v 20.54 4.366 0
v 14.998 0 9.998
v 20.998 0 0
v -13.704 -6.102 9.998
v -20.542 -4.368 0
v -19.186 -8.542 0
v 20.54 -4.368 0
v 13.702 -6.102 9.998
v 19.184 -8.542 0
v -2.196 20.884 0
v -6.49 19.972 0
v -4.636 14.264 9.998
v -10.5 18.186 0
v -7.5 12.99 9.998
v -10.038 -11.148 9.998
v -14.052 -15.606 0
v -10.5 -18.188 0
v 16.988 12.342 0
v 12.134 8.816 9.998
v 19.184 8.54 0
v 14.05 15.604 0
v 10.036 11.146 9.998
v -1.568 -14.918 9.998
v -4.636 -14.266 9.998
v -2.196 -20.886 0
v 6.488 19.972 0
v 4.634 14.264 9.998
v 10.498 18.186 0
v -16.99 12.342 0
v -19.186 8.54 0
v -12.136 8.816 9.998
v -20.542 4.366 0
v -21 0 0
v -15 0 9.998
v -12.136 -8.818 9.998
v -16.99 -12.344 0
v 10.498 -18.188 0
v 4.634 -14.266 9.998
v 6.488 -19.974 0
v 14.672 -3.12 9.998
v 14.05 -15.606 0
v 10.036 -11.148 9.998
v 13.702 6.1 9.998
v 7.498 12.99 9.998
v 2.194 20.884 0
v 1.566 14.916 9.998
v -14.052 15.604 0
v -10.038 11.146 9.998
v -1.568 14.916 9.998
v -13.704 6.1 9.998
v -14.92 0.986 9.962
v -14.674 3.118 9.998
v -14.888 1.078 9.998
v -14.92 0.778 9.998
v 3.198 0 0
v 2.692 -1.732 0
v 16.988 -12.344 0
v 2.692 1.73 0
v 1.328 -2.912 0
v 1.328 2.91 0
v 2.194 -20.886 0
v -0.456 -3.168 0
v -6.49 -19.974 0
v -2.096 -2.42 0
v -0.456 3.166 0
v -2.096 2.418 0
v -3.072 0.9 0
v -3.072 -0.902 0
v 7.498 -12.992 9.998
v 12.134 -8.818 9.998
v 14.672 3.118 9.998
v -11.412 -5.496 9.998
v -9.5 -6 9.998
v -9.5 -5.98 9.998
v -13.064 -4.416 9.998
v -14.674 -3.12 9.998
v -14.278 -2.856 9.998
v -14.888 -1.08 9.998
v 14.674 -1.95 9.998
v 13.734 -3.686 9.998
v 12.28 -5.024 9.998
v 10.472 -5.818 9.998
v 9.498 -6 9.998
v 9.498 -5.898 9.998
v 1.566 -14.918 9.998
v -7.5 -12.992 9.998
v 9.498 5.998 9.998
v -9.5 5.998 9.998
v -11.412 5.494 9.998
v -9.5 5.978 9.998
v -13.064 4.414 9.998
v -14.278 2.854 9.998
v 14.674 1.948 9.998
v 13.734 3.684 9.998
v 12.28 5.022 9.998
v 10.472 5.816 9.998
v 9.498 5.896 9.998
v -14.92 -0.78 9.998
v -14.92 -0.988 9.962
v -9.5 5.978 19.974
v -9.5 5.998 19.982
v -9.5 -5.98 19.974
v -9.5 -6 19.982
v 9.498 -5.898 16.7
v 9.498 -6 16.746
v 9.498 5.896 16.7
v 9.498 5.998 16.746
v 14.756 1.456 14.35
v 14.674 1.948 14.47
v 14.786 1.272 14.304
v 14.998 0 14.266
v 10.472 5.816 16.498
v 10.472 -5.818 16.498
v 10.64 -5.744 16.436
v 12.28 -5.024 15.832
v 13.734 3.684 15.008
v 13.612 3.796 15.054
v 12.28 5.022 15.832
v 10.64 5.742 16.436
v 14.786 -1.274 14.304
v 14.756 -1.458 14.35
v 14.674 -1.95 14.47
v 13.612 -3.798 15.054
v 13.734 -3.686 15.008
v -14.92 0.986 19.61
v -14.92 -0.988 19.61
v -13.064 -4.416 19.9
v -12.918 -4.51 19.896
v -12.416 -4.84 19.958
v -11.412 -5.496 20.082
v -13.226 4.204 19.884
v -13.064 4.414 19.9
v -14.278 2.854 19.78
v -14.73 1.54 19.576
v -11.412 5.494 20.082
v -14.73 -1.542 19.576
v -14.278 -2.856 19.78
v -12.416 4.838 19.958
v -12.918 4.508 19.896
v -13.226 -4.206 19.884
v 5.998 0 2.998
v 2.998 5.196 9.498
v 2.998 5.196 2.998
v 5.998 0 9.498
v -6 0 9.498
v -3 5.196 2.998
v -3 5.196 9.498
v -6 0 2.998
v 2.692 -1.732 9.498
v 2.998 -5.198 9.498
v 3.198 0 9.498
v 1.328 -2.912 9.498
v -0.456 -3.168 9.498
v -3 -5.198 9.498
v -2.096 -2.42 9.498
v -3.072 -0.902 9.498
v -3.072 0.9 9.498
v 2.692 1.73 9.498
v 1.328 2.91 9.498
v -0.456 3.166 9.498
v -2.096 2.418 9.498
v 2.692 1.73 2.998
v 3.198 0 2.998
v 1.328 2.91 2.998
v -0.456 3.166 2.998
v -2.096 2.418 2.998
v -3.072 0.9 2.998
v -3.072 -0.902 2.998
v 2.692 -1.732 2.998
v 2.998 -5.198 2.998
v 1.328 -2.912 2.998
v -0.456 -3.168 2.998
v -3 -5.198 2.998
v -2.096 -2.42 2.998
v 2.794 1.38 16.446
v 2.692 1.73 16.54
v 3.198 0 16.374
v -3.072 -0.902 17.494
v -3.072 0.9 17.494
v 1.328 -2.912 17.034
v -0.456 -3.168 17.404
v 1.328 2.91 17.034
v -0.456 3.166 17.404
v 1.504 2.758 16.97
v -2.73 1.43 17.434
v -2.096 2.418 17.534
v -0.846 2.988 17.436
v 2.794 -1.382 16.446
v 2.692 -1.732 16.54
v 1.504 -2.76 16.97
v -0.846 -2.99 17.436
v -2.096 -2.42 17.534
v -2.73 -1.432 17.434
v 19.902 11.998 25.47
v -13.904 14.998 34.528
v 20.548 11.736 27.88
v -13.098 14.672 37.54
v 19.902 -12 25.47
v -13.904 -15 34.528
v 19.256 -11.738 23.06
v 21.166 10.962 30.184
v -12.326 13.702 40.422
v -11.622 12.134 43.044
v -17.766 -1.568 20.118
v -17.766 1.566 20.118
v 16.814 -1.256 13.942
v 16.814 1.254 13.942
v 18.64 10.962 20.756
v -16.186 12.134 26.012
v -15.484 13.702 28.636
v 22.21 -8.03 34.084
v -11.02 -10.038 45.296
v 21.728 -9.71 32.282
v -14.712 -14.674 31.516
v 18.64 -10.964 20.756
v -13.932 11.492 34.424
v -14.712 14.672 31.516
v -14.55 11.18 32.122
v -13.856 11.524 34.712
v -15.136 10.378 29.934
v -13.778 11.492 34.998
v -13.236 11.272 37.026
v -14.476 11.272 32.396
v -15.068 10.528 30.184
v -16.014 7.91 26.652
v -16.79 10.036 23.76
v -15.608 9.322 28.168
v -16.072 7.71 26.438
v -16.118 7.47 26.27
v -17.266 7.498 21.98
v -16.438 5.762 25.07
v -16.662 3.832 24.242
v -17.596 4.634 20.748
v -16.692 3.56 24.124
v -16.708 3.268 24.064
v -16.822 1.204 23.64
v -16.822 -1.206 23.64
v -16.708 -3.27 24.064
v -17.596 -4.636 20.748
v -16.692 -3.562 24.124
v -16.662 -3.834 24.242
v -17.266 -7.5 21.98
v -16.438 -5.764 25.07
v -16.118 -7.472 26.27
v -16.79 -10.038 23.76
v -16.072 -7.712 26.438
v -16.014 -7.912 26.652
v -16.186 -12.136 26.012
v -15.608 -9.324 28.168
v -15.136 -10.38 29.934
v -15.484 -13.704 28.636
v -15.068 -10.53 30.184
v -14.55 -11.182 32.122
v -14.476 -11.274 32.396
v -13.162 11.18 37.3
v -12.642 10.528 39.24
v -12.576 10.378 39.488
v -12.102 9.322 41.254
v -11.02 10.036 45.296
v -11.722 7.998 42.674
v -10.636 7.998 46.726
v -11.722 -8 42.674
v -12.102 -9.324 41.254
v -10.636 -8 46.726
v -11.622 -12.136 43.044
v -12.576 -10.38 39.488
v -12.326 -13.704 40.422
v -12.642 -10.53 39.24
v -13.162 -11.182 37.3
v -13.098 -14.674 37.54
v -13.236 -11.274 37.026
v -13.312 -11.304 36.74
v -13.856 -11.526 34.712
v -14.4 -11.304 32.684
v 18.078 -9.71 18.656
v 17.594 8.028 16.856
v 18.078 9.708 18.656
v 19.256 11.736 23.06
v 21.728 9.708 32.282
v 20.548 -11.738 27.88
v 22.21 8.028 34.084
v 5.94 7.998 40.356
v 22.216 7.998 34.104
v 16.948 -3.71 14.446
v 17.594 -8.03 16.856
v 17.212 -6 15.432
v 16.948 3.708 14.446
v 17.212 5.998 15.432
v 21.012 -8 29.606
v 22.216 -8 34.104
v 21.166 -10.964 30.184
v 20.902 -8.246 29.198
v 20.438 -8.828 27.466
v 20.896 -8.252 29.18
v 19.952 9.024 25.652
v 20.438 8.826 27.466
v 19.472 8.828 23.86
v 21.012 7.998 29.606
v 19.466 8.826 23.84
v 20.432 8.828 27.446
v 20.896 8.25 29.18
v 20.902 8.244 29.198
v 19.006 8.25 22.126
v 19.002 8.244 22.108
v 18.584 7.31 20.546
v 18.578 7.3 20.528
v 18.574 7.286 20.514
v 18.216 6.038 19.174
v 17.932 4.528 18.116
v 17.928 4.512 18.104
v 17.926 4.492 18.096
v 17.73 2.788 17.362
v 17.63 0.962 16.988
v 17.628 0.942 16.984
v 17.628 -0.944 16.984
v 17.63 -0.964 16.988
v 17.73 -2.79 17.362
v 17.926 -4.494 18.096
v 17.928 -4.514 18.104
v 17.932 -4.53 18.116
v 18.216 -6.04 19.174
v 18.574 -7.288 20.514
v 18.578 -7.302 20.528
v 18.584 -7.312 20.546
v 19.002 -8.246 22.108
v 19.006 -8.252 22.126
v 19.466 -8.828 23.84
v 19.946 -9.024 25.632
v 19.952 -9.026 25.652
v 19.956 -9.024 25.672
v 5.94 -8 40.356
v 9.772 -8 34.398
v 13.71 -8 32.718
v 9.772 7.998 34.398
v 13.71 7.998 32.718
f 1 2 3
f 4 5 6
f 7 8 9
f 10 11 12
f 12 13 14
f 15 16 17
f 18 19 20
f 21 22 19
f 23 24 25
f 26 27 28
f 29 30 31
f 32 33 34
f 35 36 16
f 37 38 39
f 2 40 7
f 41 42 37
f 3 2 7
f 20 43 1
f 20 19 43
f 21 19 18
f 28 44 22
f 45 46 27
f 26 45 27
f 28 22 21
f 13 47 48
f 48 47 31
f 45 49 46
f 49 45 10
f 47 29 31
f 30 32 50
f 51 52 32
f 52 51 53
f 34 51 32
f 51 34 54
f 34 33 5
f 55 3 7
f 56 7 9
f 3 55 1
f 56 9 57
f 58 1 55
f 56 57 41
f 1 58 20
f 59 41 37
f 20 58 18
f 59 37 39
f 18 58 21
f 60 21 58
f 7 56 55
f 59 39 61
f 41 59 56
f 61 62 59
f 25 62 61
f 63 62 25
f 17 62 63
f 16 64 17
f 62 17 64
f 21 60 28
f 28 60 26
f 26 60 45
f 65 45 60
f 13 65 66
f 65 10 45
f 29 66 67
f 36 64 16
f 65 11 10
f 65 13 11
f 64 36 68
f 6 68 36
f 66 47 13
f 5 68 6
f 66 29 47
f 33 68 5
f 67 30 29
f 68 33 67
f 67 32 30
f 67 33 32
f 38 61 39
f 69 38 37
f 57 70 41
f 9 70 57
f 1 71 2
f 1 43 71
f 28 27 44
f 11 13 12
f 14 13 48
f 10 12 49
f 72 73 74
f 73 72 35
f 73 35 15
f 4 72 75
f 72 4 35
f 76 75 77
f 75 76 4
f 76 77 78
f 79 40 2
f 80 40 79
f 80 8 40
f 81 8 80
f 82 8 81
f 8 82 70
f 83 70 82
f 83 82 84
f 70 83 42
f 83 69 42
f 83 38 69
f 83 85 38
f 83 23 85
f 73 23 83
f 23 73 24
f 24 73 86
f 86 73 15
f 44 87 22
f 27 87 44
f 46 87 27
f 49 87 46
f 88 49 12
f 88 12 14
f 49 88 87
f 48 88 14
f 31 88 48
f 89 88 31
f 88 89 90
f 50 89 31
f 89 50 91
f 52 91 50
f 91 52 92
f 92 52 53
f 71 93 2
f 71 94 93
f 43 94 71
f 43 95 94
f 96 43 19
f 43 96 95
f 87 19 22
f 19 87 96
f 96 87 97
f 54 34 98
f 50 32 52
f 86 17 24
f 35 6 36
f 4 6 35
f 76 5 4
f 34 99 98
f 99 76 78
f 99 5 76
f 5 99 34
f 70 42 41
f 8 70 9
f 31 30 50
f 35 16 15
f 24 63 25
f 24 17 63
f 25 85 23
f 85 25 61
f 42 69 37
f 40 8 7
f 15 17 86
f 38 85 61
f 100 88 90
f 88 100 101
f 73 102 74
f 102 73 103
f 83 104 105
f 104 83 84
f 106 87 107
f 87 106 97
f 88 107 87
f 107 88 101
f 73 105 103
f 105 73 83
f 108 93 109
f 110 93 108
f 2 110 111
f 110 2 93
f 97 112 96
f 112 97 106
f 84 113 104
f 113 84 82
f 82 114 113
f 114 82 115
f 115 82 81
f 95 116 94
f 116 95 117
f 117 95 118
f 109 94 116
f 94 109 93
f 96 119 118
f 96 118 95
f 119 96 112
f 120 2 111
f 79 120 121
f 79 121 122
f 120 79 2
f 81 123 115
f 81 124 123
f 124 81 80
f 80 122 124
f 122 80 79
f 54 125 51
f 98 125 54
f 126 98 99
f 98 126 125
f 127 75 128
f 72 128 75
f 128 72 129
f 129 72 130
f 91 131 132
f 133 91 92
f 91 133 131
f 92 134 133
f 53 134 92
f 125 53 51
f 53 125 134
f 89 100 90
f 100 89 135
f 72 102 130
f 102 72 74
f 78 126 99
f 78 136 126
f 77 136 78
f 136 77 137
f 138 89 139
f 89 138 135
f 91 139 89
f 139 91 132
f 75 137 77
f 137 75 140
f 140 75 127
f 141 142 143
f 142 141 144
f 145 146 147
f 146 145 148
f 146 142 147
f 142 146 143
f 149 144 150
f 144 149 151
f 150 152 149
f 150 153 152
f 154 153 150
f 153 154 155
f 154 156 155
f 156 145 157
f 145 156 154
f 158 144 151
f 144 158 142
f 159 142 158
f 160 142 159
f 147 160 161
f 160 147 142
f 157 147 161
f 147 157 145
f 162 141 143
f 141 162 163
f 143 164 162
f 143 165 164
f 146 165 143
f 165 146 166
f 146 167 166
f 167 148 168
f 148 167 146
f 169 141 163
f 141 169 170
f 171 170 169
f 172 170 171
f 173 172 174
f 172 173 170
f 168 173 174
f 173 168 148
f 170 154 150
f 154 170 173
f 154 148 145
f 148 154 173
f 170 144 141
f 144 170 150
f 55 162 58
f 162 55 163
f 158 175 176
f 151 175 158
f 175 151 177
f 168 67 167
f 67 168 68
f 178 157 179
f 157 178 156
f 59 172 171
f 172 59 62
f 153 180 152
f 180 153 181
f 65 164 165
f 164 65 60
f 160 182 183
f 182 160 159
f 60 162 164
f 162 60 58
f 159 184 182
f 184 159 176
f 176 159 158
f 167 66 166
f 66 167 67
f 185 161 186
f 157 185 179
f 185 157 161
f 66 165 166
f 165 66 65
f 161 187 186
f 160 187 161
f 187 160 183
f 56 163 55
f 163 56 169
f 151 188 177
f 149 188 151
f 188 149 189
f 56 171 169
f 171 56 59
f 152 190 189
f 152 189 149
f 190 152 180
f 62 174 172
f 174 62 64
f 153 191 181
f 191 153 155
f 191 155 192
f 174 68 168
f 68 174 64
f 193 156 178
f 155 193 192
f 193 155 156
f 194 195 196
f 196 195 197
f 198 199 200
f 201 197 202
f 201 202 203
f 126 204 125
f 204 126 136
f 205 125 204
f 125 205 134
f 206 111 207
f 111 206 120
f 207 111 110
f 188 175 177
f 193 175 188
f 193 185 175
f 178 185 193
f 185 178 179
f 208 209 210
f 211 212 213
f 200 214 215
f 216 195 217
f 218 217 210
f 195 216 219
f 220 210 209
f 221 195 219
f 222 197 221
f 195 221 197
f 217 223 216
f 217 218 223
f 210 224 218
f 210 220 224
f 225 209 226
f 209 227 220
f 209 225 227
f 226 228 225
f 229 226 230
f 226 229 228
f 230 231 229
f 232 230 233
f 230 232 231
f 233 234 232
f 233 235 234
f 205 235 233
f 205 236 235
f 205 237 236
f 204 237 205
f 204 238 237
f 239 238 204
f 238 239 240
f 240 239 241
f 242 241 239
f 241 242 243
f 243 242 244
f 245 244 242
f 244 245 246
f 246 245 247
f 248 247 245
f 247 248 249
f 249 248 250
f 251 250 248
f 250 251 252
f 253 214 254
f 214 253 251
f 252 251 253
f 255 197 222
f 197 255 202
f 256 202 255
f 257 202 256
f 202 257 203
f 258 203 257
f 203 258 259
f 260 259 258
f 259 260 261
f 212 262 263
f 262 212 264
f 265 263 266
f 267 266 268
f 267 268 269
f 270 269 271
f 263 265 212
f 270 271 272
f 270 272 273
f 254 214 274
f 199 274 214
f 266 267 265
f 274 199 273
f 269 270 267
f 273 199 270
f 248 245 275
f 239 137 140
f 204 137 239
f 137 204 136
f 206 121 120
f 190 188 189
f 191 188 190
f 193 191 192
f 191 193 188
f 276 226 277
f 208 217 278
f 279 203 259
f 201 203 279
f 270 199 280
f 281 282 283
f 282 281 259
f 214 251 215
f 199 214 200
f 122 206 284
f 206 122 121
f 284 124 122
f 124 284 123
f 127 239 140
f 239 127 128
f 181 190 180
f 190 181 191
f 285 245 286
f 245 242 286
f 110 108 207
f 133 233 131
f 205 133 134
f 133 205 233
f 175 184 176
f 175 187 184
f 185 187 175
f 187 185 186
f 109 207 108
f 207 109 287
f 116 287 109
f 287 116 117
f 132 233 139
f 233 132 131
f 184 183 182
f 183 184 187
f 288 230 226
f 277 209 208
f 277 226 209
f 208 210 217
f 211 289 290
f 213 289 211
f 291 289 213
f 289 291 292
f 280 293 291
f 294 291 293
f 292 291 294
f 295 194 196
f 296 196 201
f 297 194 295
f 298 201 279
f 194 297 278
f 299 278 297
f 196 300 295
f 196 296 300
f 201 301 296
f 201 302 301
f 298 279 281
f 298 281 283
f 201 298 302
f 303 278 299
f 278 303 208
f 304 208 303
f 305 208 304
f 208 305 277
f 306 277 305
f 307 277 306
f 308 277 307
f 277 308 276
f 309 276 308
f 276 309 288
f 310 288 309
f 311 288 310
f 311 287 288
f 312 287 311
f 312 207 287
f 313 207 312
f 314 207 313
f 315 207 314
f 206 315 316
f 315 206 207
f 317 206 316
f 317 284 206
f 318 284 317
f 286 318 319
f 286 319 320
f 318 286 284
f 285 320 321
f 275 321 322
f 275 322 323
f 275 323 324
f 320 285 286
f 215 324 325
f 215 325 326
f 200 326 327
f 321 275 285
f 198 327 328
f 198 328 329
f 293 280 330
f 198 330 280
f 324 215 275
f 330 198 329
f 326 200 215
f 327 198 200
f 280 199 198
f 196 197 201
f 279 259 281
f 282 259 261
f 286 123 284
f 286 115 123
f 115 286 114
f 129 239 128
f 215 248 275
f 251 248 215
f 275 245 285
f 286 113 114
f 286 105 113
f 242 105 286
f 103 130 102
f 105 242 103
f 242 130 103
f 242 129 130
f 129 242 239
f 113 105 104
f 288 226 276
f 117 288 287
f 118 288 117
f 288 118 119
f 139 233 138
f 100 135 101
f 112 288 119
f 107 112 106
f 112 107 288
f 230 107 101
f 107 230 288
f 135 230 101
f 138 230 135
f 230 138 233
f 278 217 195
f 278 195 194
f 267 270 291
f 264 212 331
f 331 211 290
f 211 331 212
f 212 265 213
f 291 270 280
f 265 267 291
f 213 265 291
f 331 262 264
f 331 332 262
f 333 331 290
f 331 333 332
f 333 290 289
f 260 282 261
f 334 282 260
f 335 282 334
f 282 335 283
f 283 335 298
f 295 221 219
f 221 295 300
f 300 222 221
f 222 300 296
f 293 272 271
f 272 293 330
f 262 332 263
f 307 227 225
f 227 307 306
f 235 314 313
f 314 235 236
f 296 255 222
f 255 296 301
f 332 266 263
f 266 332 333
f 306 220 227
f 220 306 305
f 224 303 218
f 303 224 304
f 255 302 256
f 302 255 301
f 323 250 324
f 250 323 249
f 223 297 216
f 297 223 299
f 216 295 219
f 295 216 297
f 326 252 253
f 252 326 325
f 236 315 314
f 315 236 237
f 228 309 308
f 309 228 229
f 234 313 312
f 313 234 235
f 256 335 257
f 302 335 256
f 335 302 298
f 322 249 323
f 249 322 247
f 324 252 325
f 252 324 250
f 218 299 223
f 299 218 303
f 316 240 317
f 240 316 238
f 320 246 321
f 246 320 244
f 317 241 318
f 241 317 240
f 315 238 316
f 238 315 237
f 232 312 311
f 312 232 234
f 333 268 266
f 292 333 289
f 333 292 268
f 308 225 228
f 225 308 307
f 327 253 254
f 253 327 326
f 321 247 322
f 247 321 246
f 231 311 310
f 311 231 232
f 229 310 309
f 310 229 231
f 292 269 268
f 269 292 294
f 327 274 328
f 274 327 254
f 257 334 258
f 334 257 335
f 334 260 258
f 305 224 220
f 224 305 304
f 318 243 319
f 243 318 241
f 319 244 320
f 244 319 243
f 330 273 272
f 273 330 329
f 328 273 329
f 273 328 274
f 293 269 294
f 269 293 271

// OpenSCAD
module nut()
{
    $fn = 6;
cylinder(6.5,6,6);
};
module shower_holder(){
  difference(){
cylinder(35,15,12, true);

    translate([0,10,0]) rotate([8,0,0]) cube([16,10,50], true);
  }
};




difference()
{
    union()
    {
        difference(){
              union(){
                cylinder(10,21,15);
                translate([0,0,14.5]) cube([19,12,15], true);
                 translate([9,0,5]) cylinder(17,6,6);
                 translate([-9,0,5]) cylinder(17,6,6);
                }
            translate([0,0,3]) nut();
              translate([0,0,-4])    cylinder(22,3.2,3.2);

        }
         translate([3,0,30]) rotate([105,0,90])  shower_holder();
    }
    //translate([0,25,0]) cube([50,50,200], true);
   
  translate([0,0,31]) rotate([105,0,90])  cylinder(42,12,9, true);
}
